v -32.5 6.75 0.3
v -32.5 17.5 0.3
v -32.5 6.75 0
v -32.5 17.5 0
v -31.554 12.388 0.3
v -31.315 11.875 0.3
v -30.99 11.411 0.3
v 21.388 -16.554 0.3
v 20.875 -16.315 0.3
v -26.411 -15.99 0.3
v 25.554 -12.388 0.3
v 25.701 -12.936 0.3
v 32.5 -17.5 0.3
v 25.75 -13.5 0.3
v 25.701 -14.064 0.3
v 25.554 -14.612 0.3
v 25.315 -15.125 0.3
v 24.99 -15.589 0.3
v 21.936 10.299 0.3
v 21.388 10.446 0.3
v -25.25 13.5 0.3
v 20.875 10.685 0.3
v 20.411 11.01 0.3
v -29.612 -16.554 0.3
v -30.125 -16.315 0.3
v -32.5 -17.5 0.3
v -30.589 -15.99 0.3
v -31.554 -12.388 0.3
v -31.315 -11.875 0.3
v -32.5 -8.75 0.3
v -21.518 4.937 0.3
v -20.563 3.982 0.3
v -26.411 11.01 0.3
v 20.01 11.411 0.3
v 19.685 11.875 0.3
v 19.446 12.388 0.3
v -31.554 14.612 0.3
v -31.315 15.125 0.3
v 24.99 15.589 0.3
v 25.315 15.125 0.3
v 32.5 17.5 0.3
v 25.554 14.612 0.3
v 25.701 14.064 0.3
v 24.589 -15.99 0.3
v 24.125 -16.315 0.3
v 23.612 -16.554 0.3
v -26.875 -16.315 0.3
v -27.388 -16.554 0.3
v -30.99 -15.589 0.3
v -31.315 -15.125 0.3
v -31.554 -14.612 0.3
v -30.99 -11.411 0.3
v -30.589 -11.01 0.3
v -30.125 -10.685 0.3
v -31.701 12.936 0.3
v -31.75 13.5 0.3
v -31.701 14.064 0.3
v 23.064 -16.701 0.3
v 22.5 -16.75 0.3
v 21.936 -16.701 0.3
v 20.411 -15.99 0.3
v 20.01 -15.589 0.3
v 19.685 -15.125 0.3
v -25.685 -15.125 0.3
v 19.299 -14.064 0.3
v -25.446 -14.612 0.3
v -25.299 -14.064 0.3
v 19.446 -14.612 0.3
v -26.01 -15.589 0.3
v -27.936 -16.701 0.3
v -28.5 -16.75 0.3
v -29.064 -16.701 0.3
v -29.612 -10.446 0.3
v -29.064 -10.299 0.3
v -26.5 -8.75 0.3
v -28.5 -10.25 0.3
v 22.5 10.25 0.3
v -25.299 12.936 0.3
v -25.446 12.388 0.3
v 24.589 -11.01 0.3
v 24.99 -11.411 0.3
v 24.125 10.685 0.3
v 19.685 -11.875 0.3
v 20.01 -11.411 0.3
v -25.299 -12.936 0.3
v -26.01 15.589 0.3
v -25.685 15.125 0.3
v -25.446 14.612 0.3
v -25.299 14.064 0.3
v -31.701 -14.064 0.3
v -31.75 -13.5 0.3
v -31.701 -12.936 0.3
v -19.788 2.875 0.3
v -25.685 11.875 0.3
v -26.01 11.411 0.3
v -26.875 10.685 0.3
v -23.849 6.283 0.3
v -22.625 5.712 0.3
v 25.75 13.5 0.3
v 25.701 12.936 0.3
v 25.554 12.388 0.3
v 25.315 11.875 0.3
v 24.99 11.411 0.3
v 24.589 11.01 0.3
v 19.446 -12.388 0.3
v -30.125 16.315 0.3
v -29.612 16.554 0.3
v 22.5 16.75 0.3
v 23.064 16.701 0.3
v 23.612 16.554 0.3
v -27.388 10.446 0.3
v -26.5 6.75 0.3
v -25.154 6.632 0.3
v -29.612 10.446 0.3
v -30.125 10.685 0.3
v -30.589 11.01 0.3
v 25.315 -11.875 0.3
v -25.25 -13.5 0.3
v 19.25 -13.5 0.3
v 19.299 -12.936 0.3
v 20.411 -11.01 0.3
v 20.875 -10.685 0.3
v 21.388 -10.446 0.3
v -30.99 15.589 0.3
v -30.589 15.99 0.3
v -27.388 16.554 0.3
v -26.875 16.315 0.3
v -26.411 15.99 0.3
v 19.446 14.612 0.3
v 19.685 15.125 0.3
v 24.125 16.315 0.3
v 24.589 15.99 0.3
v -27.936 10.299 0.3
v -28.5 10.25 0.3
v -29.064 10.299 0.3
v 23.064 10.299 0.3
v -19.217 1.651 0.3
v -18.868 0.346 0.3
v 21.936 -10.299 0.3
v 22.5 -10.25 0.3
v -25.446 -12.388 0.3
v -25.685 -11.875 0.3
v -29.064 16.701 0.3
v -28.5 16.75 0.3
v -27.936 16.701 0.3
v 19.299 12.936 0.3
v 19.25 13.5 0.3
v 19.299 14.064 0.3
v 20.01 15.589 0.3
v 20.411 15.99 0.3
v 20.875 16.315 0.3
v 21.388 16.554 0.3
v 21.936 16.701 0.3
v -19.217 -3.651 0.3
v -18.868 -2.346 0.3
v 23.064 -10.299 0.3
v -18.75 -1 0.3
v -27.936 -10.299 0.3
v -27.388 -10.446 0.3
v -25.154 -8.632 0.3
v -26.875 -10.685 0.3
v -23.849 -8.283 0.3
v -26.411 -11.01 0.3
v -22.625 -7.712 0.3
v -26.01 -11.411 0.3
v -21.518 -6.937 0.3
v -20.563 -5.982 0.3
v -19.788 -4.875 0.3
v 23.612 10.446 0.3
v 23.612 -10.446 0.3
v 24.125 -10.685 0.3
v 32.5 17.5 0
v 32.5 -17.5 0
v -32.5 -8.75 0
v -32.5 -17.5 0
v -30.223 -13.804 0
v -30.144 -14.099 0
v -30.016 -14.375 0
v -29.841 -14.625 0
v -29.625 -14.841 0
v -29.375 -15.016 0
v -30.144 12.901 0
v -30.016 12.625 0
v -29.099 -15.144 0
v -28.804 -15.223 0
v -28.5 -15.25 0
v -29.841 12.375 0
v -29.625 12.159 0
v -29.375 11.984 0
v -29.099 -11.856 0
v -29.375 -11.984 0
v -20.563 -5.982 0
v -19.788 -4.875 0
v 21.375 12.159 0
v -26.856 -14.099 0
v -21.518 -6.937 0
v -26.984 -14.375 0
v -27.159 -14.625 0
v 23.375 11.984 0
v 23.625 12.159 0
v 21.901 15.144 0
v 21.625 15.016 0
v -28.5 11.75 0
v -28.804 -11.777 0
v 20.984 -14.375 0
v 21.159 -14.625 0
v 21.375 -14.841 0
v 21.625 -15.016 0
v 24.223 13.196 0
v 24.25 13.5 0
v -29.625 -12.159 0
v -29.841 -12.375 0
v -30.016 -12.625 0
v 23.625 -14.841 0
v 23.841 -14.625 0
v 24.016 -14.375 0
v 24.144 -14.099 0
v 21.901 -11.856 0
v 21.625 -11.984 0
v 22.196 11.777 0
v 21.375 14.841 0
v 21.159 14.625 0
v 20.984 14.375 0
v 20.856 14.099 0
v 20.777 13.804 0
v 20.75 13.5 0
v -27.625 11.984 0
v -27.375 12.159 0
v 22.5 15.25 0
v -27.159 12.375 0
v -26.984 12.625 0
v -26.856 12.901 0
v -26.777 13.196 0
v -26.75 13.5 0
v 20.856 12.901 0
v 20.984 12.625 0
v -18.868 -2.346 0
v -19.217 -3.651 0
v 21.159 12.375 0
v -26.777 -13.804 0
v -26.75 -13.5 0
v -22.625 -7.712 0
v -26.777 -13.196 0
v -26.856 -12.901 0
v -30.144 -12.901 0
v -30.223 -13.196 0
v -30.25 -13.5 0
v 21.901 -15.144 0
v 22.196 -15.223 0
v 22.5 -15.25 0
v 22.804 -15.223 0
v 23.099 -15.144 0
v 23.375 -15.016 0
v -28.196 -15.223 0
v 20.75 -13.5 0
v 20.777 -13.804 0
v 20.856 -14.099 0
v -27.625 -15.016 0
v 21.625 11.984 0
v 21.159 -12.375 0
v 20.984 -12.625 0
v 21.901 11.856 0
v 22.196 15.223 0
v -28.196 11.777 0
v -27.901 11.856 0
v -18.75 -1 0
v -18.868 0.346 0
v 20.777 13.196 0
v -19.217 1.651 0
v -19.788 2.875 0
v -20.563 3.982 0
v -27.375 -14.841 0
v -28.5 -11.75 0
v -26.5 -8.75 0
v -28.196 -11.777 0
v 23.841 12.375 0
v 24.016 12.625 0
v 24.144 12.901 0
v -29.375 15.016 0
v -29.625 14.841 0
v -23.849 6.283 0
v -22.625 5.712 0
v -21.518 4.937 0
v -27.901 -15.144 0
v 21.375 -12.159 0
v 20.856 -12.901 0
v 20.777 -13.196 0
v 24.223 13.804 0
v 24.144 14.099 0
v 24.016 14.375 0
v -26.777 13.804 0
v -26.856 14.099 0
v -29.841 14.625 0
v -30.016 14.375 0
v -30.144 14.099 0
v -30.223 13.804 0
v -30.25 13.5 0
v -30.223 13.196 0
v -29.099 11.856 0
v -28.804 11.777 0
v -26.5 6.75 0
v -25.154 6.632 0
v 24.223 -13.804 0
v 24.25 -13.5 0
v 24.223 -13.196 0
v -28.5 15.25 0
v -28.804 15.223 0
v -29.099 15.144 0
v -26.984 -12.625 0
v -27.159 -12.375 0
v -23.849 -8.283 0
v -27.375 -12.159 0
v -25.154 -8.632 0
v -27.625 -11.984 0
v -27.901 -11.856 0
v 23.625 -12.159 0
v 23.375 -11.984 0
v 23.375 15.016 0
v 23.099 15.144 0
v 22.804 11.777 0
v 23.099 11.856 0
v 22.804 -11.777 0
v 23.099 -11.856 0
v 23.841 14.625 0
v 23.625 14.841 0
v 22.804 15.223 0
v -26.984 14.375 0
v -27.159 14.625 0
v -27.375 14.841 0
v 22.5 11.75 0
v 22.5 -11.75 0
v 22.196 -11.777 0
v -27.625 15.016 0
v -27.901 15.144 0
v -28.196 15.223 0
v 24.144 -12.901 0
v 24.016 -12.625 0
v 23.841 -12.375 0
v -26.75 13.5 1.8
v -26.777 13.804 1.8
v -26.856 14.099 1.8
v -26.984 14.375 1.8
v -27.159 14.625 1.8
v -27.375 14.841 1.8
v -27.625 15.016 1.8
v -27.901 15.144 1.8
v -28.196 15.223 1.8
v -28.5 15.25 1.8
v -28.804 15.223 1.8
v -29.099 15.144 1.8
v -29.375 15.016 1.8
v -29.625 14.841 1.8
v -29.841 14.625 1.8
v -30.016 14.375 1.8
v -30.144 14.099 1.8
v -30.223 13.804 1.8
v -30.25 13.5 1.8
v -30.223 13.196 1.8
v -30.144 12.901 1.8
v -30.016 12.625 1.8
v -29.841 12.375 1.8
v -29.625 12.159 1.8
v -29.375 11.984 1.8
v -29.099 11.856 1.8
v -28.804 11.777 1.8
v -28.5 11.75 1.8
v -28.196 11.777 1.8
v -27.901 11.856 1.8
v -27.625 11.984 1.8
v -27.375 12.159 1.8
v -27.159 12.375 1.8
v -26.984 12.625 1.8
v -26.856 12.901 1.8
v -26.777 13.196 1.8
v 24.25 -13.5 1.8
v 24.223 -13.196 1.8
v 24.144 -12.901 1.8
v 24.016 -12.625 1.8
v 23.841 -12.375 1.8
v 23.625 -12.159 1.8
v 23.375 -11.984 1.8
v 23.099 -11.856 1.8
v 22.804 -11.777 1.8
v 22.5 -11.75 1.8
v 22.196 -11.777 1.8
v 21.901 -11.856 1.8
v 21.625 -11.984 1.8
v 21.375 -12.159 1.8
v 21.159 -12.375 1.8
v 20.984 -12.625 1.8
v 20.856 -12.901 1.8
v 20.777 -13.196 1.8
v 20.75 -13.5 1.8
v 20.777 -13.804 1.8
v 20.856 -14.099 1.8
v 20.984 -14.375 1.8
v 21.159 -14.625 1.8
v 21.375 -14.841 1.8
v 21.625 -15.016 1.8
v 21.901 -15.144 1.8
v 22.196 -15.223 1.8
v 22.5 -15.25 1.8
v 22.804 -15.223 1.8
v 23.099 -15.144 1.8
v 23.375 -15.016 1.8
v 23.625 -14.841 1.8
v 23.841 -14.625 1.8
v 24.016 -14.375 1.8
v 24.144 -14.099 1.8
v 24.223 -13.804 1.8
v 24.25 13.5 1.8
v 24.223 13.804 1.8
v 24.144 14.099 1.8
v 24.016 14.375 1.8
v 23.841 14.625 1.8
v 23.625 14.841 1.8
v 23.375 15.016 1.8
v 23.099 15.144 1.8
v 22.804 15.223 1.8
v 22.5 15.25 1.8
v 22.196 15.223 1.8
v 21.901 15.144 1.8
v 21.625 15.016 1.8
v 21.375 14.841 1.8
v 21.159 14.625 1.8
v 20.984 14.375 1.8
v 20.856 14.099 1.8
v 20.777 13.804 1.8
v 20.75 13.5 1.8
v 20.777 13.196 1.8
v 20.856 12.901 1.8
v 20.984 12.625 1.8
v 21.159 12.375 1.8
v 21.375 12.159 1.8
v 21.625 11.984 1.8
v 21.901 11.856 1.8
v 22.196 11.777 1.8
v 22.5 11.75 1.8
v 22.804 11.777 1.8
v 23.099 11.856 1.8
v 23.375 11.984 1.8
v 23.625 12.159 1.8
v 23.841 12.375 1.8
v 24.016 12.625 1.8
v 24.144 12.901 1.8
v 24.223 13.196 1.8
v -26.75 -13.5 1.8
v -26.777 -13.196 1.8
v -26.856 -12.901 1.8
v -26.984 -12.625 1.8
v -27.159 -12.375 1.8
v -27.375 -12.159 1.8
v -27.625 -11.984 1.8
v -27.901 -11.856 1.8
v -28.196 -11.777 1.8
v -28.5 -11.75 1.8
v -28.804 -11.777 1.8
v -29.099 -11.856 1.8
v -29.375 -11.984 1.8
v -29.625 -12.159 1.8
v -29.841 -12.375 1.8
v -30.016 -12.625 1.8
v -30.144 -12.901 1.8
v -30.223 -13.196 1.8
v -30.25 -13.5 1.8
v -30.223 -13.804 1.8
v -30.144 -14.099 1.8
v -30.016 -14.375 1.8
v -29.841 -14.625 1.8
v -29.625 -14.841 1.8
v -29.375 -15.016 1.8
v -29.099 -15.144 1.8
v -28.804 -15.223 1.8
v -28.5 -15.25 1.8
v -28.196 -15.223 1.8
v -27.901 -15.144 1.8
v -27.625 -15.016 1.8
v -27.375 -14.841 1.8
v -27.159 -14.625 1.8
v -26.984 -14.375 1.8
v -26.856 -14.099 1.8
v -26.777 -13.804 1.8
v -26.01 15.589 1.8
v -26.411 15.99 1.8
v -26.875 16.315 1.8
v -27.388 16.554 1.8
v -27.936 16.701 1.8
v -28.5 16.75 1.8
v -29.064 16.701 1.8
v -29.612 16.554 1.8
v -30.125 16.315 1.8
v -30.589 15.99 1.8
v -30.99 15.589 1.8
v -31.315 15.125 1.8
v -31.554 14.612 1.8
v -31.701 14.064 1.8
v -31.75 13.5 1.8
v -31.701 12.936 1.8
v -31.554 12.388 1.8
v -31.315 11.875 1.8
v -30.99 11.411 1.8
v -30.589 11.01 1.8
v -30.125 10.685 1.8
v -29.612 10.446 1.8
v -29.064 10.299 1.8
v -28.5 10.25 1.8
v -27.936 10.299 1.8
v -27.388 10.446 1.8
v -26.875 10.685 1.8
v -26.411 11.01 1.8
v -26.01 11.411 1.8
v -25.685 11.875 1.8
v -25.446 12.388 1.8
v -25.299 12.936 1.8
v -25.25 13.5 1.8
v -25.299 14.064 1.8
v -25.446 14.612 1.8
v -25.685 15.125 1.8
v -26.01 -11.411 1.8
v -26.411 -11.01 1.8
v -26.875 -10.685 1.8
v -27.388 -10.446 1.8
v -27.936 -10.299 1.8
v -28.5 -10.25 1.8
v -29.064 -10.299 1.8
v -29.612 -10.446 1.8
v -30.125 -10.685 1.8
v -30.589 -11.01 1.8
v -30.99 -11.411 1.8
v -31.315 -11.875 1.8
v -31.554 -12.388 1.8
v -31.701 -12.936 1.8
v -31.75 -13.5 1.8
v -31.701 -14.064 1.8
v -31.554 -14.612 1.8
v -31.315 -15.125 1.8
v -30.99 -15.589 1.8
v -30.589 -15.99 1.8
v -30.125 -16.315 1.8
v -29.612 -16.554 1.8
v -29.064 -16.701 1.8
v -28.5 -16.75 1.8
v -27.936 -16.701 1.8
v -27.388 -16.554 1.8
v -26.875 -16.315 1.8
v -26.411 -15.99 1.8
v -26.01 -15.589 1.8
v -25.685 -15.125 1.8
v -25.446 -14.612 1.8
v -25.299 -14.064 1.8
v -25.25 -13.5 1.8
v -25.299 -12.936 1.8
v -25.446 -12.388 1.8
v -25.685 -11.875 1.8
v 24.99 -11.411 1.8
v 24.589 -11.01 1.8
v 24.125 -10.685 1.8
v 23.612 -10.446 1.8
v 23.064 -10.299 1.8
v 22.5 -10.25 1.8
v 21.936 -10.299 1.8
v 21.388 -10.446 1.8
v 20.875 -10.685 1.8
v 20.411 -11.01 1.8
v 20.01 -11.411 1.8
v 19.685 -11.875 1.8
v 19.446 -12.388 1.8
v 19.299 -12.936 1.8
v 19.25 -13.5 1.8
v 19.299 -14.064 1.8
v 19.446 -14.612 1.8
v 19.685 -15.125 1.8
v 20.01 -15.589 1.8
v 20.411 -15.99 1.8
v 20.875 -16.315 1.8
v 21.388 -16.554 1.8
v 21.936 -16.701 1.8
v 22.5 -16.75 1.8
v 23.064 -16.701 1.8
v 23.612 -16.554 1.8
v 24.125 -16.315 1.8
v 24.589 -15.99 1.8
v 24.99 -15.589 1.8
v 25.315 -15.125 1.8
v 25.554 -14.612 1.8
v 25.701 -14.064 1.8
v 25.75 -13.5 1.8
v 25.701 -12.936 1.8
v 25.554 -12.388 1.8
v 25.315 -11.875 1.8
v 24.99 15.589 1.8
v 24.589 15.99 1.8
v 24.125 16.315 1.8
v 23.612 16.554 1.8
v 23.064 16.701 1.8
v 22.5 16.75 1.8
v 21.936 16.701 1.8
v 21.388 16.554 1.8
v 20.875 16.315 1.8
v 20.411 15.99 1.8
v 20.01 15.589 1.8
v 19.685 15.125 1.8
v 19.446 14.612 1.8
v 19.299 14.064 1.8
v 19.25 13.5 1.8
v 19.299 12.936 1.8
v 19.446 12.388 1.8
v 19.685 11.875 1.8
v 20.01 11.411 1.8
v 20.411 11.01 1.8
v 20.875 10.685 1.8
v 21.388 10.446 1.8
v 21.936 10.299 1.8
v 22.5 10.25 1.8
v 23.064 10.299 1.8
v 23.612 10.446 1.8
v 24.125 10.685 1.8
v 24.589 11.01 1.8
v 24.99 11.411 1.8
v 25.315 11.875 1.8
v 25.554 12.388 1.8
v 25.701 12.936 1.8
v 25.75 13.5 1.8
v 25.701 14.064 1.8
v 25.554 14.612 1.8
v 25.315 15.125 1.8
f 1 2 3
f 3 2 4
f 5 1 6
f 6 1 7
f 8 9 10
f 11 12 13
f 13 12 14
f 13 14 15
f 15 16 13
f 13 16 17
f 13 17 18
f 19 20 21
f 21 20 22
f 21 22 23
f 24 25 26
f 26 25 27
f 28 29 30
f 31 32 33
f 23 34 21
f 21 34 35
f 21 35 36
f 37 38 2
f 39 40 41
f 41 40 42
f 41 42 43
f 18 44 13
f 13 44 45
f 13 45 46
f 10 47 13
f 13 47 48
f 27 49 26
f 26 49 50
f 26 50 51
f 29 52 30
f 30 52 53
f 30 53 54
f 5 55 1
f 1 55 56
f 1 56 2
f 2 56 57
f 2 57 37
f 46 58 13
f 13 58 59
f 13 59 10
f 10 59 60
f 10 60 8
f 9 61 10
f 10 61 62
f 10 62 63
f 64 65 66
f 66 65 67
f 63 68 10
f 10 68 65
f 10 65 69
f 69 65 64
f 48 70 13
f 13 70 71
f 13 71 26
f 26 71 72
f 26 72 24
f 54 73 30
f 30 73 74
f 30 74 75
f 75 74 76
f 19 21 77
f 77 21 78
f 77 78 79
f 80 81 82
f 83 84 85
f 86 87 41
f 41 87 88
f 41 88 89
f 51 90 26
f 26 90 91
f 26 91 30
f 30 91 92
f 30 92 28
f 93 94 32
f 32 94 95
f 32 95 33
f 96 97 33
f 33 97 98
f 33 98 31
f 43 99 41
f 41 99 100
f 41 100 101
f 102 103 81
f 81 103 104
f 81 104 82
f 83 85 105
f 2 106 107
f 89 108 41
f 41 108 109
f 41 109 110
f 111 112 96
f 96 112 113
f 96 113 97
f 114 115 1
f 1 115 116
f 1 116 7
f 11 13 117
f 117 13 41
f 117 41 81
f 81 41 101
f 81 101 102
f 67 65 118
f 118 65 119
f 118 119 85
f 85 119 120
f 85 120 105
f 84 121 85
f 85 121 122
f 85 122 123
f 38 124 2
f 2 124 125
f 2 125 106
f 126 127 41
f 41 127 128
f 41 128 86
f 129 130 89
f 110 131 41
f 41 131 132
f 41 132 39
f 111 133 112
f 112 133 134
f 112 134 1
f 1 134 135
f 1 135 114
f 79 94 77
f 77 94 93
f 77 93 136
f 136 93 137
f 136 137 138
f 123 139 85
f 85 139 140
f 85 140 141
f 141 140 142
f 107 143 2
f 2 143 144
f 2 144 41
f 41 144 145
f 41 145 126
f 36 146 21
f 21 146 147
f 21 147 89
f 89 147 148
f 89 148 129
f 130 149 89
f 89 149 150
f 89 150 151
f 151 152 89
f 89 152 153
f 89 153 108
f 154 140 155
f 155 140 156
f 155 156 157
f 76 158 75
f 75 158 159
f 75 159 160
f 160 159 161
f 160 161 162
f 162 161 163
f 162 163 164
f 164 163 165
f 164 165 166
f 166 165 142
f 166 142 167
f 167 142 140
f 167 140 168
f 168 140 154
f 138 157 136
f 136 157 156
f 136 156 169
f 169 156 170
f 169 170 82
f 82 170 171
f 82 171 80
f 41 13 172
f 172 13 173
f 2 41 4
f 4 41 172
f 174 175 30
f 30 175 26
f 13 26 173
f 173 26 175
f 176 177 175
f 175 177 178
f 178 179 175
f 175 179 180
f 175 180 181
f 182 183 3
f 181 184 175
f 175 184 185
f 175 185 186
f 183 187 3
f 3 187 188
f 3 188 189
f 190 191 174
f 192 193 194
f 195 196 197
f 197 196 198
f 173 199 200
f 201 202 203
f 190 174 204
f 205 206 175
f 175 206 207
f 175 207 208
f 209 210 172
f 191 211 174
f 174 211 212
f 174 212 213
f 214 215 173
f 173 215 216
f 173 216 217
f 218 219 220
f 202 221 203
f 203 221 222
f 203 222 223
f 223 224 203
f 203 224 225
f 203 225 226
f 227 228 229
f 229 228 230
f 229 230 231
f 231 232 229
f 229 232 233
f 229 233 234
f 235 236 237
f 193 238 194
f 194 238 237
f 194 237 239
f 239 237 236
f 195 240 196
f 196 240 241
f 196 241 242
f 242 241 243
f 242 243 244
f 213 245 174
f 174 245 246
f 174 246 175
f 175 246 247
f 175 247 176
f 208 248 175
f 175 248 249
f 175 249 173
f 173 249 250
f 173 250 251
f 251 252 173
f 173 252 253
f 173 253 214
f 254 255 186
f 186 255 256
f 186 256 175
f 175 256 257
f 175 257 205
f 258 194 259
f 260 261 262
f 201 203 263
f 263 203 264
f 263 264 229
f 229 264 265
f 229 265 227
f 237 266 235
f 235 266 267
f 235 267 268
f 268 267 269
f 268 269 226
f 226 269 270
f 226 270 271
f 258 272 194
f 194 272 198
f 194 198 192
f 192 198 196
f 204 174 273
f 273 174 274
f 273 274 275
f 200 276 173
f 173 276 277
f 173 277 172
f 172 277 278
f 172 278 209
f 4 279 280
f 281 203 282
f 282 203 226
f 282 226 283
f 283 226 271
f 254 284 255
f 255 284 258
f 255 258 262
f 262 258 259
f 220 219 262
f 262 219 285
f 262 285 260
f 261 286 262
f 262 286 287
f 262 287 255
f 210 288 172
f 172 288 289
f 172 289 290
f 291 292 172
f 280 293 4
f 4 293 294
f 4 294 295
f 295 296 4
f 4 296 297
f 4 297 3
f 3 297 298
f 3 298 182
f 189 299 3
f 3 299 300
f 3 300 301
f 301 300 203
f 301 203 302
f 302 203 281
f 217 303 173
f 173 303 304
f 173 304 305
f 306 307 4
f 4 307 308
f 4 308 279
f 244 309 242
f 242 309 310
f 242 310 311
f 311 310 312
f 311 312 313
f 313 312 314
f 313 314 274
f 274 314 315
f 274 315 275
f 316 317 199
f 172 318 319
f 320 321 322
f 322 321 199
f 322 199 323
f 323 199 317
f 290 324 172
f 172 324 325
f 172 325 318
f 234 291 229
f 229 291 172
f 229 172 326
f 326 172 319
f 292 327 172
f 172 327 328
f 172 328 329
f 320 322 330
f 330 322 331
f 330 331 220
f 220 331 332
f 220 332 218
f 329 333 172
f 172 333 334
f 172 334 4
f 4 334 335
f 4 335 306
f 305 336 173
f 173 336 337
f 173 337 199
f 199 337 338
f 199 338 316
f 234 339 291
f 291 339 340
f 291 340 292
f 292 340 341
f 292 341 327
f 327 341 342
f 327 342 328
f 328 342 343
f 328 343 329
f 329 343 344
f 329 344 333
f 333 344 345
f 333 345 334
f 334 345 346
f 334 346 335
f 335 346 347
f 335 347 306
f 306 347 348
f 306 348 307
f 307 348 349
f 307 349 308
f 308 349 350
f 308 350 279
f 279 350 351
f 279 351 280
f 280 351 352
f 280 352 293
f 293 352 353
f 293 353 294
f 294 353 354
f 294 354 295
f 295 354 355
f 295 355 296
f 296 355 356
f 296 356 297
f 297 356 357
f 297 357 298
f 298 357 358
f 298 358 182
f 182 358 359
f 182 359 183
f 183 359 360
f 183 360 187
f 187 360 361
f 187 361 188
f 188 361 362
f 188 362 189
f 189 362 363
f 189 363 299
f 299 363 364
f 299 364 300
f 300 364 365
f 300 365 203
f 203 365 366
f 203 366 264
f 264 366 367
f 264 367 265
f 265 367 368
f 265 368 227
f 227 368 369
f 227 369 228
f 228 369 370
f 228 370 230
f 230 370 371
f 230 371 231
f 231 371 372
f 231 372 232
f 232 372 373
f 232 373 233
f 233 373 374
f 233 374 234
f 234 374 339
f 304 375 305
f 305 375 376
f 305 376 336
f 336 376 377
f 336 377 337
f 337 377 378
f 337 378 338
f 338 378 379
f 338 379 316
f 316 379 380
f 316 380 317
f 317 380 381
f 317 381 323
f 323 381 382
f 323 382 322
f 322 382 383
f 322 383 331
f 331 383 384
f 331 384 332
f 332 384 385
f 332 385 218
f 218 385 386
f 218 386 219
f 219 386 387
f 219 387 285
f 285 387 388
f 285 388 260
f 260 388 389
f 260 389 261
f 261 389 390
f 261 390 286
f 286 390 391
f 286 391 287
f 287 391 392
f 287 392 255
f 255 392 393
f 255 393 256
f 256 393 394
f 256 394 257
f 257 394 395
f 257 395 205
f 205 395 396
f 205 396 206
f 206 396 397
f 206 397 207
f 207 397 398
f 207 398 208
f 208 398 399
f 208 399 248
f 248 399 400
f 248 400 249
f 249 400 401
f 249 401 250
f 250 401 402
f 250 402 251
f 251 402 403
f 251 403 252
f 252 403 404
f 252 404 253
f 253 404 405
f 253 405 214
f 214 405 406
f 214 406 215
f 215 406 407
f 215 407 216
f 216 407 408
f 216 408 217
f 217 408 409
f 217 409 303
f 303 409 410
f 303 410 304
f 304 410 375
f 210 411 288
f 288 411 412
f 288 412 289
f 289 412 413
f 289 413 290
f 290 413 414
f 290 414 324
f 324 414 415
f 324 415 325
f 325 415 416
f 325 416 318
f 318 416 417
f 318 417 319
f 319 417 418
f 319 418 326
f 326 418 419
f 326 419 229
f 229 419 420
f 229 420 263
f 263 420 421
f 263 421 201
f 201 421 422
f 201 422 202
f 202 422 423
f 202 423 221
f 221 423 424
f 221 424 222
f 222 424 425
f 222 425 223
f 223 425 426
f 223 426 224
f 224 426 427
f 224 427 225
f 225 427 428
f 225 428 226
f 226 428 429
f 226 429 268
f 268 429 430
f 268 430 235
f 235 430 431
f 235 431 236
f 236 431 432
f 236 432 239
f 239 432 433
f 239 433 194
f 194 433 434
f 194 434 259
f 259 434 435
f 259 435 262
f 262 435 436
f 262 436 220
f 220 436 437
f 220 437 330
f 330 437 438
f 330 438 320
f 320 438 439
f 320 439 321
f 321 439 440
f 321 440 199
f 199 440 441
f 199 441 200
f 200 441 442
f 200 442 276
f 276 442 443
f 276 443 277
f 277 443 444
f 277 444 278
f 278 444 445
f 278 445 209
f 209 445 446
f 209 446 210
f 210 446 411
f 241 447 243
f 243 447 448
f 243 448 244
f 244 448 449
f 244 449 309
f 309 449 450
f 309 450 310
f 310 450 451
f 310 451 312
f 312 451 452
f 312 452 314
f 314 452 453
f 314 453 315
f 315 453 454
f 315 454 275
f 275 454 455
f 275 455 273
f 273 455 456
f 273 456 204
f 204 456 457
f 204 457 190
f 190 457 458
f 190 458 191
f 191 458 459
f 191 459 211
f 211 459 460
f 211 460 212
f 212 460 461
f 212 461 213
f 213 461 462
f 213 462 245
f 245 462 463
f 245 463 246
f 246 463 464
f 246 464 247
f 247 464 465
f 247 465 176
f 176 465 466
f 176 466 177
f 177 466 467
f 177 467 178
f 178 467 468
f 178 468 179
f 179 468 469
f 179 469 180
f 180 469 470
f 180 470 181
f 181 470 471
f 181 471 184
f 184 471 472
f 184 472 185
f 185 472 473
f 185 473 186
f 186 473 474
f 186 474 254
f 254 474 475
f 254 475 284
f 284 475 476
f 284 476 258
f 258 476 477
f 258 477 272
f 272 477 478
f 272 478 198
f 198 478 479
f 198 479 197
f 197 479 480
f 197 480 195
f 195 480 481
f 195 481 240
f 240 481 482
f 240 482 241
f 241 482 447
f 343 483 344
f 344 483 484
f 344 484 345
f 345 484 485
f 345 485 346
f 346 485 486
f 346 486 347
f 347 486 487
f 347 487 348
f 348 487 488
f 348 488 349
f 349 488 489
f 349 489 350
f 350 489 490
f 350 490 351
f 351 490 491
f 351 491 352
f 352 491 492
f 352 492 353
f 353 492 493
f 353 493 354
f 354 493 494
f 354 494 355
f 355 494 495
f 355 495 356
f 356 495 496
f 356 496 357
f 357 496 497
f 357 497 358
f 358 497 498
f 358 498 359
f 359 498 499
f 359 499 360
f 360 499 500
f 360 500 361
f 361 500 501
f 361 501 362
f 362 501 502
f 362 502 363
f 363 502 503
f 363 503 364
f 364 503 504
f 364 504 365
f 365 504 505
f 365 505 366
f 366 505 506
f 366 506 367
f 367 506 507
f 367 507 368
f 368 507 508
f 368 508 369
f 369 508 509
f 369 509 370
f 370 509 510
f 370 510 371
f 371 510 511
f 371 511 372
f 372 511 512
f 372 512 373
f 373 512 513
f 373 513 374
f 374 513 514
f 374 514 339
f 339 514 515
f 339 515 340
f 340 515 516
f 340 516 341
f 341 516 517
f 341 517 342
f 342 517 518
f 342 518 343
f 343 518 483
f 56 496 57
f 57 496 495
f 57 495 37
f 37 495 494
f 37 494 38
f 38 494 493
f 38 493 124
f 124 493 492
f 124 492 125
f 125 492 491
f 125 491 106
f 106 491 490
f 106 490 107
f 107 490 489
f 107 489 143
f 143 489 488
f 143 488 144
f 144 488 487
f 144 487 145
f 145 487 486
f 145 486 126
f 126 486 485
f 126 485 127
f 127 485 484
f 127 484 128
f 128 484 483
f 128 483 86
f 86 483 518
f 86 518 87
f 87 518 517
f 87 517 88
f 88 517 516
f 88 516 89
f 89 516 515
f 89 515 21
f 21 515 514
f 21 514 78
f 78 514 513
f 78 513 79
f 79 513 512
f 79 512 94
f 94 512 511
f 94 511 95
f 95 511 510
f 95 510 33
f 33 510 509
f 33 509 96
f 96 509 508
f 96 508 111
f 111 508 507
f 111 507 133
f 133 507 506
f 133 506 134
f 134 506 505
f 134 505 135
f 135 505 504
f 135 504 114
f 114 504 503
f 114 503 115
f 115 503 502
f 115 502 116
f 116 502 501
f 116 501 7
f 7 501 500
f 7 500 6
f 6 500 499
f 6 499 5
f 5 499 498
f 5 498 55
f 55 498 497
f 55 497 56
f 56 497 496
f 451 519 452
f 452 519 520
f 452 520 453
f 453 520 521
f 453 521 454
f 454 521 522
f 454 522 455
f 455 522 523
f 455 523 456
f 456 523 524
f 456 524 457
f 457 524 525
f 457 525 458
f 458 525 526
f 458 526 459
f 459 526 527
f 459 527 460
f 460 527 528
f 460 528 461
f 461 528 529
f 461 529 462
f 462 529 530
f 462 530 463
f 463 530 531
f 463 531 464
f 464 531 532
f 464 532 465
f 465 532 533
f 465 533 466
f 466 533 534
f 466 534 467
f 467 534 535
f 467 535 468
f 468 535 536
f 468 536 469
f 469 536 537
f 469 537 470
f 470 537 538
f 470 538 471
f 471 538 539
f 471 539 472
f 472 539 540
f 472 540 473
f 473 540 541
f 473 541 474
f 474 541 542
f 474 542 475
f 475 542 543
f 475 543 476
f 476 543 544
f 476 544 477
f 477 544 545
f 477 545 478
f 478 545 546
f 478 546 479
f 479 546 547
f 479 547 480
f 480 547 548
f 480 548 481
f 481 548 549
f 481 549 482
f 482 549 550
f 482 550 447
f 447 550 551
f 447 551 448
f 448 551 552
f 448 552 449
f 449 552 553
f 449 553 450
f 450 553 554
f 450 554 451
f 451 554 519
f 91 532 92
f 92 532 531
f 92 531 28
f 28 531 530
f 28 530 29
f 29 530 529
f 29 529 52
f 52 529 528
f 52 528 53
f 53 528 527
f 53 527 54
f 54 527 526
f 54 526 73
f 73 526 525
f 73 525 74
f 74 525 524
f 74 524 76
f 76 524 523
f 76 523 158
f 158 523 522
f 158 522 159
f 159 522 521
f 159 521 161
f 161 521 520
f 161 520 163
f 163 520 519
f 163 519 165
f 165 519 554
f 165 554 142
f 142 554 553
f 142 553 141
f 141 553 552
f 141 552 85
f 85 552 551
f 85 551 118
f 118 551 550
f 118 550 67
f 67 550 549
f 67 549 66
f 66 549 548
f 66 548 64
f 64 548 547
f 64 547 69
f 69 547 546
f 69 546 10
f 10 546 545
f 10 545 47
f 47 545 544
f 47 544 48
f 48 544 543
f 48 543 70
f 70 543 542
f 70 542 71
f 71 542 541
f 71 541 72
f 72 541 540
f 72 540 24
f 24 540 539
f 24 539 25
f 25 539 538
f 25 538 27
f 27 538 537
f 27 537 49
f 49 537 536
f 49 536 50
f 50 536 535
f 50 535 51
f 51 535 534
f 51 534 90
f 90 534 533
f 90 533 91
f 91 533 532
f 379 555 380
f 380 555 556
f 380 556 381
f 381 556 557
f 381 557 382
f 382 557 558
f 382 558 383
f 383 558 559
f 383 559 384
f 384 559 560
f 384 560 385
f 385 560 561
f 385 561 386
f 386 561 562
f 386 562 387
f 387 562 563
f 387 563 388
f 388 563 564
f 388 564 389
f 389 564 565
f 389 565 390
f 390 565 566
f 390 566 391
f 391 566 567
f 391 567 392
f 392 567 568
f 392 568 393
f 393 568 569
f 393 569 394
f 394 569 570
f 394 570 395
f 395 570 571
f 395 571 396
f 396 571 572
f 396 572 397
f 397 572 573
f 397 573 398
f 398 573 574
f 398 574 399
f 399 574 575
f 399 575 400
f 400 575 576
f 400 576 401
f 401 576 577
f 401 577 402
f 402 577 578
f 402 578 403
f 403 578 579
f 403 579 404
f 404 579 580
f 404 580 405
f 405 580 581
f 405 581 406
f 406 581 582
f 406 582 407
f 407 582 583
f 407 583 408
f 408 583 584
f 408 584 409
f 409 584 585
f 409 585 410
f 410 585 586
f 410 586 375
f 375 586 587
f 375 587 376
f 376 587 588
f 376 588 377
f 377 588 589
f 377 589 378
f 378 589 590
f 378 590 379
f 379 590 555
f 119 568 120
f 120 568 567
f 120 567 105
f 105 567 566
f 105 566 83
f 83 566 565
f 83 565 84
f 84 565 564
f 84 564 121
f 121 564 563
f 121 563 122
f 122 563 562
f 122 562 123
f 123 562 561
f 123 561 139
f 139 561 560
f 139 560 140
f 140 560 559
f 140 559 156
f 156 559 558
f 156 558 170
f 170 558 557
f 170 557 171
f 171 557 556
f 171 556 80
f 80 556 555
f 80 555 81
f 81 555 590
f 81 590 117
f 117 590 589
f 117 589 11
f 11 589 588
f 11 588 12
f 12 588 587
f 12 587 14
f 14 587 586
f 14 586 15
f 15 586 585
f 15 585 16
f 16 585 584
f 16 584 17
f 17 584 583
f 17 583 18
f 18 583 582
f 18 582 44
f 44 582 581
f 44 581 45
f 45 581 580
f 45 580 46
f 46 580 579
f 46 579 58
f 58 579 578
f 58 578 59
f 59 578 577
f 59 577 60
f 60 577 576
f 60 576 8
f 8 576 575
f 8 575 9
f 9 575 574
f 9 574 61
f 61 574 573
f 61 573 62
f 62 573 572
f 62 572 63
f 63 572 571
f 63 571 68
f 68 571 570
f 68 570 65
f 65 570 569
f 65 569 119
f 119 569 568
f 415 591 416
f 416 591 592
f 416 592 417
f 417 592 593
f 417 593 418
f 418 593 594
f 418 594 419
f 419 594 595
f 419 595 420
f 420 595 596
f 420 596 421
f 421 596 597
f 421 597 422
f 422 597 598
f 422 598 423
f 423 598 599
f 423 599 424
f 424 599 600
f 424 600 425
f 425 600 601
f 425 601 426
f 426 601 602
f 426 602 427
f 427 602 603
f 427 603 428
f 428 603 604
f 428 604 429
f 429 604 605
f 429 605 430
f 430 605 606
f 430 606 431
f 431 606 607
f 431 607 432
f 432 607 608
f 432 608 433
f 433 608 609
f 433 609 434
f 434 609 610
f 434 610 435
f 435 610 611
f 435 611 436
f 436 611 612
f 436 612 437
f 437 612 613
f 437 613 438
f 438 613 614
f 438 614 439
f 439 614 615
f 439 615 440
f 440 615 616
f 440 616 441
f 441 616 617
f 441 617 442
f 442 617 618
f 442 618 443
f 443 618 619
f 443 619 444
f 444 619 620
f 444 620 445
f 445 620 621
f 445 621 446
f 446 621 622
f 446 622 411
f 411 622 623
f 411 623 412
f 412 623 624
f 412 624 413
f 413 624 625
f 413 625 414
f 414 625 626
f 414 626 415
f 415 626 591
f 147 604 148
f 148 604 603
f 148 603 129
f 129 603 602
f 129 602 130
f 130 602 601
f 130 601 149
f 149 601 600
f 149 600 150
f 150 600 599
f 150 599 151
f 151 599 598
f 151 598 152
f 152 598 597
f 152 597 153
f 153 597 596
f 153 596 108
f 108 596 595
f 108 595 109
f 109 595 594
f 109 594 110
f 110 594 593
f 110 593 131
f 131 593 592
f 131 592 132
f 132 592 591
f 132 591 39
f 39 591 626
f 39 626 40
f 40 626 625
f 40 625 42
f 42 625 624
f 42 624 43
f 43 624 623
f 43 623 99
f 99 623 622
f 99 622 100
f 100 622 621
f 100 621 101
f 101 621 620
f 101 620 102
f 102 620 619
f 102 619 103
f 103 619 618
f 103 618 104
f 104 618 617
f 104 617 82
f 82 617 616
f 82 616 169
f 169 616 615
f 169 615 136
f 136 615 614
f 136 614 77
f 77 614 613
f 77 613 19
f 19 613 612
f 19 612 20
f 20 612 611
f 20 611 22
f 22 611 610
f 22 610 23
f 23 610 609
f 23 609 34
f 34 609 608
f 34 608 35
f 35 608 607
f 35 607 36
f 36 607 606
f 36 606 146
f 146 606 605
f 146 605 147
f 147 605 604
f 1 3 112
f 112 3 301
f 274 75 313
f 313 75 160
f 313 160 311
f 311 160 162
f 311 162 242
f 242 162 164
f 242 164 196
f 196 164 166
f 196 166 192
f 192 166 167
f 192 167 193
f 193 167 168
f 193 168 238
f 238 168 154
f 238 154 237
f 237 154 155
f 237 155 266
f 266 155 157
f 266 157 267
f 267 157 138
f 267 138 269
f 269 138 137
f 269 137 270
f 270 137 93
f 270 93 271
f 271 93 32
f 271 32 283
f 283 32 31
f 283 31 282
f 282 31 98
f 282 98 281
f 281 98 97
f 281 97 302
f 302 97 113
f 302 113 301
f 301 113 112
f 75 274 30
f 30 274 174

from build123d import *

# Parameters (mm, degrees)
SKETCH2_W           = 65
SKETCH2_H           = 35
BOSS_EXTRUDE1_DEPTH = 0.3
SKETCH3_R           = 1.75
CUT_EXTRUDE1_DEPTH  = 1.6
SKETCH4_R           = 3.25
SKETCH4_R_2         = 1.75
BOSS_EXTRUDE2_DEPTH = 1.5
CUT_EXTRUDE2_DEPTH  = 10


with BuildPart() as part:
    # Sketch2 → Boss-Extrude1 (new body)
    with BuildSketch(Plane.XY):
        Rectangle(SKETCH2_W, SKETCH2_H)
    extrude(amount=BOSS_EXTRUDE1_DEPTH)

    # Sketch3 → Cut-Extrude1 (cut)
    with BuildSketch(Plane.XY.offset(0.3)):
        with Locations((-28.5, 13.5)):
            Circle(SKETCH3_R)
        with Locations((-28.5, -13.5)):
            Circle(SKETCH3_R)
        with Locations((22.5, 13.5)):
            Circle(SKETCH3_R)
        with Locations((22.5, -13.5)):
            Circle(SKETCH3_R)
    extrude(amount=-CUT_EXTRUDE1_DEPTH, mode=Mode.SUBTRACT)

    # Sketch4 → Boss-Extrude2 (add)
    with BuildSketch(Plane.XY.offset(0.3)):
        with Locations((-28.5, 13.5)):
            Circle(SKETCH4_R)
        with Locations((-28.5, 13.5)):
            Circle(SKETCH4_R_2, mode=Mode.SUBTRACT)
        with Locations((-28.5, -13.5)):
            Circle(SKETCH4_R)
        with Locations((-28.5, -13.5)):
            Circle(SKETCH4_R_2, mode=Mode.SUBTRACT)
        with Locations((22.5, -13.5)):
            Circle(SKETCH4_R)
        with Locations((22.5, -13.5)):
            Circle(SKETCH4_R_2, mode=Mode.SUBTRACT)
        with Locations((22.5, 13.5)):
            Circle(SKETCH4_R)
        with Locations((22.5, 13.5)):
            Circle(SKETCH4_R_2, mode=Mode.SUBTRACT)
    extrude(amount=BOSS_EXTRUDE2_DEPTH)

    # Sketch5 → Cut-Extrude2 (cut)
    with BuildSketch(Plane.XY.offset(0.3)):
        with BuildLine():
            Line((-32.5, 6.75), (-26.5, 6.75))
            ThreePointArc((-26.5, 6.75), (-18.75, -1), (-26.5, -8.75))
            Line((-26.5, -8.75), (-32.5, -8.75))
            ThreePointArc((-32.5, -8.75), (-40.25, -1), (-32.5, 6.75))
        make_face()
    extrude(amount=-CUT_EXTRUDE2_DEPTH, mode=Mode.SUBTRACT)


solid = part.part
